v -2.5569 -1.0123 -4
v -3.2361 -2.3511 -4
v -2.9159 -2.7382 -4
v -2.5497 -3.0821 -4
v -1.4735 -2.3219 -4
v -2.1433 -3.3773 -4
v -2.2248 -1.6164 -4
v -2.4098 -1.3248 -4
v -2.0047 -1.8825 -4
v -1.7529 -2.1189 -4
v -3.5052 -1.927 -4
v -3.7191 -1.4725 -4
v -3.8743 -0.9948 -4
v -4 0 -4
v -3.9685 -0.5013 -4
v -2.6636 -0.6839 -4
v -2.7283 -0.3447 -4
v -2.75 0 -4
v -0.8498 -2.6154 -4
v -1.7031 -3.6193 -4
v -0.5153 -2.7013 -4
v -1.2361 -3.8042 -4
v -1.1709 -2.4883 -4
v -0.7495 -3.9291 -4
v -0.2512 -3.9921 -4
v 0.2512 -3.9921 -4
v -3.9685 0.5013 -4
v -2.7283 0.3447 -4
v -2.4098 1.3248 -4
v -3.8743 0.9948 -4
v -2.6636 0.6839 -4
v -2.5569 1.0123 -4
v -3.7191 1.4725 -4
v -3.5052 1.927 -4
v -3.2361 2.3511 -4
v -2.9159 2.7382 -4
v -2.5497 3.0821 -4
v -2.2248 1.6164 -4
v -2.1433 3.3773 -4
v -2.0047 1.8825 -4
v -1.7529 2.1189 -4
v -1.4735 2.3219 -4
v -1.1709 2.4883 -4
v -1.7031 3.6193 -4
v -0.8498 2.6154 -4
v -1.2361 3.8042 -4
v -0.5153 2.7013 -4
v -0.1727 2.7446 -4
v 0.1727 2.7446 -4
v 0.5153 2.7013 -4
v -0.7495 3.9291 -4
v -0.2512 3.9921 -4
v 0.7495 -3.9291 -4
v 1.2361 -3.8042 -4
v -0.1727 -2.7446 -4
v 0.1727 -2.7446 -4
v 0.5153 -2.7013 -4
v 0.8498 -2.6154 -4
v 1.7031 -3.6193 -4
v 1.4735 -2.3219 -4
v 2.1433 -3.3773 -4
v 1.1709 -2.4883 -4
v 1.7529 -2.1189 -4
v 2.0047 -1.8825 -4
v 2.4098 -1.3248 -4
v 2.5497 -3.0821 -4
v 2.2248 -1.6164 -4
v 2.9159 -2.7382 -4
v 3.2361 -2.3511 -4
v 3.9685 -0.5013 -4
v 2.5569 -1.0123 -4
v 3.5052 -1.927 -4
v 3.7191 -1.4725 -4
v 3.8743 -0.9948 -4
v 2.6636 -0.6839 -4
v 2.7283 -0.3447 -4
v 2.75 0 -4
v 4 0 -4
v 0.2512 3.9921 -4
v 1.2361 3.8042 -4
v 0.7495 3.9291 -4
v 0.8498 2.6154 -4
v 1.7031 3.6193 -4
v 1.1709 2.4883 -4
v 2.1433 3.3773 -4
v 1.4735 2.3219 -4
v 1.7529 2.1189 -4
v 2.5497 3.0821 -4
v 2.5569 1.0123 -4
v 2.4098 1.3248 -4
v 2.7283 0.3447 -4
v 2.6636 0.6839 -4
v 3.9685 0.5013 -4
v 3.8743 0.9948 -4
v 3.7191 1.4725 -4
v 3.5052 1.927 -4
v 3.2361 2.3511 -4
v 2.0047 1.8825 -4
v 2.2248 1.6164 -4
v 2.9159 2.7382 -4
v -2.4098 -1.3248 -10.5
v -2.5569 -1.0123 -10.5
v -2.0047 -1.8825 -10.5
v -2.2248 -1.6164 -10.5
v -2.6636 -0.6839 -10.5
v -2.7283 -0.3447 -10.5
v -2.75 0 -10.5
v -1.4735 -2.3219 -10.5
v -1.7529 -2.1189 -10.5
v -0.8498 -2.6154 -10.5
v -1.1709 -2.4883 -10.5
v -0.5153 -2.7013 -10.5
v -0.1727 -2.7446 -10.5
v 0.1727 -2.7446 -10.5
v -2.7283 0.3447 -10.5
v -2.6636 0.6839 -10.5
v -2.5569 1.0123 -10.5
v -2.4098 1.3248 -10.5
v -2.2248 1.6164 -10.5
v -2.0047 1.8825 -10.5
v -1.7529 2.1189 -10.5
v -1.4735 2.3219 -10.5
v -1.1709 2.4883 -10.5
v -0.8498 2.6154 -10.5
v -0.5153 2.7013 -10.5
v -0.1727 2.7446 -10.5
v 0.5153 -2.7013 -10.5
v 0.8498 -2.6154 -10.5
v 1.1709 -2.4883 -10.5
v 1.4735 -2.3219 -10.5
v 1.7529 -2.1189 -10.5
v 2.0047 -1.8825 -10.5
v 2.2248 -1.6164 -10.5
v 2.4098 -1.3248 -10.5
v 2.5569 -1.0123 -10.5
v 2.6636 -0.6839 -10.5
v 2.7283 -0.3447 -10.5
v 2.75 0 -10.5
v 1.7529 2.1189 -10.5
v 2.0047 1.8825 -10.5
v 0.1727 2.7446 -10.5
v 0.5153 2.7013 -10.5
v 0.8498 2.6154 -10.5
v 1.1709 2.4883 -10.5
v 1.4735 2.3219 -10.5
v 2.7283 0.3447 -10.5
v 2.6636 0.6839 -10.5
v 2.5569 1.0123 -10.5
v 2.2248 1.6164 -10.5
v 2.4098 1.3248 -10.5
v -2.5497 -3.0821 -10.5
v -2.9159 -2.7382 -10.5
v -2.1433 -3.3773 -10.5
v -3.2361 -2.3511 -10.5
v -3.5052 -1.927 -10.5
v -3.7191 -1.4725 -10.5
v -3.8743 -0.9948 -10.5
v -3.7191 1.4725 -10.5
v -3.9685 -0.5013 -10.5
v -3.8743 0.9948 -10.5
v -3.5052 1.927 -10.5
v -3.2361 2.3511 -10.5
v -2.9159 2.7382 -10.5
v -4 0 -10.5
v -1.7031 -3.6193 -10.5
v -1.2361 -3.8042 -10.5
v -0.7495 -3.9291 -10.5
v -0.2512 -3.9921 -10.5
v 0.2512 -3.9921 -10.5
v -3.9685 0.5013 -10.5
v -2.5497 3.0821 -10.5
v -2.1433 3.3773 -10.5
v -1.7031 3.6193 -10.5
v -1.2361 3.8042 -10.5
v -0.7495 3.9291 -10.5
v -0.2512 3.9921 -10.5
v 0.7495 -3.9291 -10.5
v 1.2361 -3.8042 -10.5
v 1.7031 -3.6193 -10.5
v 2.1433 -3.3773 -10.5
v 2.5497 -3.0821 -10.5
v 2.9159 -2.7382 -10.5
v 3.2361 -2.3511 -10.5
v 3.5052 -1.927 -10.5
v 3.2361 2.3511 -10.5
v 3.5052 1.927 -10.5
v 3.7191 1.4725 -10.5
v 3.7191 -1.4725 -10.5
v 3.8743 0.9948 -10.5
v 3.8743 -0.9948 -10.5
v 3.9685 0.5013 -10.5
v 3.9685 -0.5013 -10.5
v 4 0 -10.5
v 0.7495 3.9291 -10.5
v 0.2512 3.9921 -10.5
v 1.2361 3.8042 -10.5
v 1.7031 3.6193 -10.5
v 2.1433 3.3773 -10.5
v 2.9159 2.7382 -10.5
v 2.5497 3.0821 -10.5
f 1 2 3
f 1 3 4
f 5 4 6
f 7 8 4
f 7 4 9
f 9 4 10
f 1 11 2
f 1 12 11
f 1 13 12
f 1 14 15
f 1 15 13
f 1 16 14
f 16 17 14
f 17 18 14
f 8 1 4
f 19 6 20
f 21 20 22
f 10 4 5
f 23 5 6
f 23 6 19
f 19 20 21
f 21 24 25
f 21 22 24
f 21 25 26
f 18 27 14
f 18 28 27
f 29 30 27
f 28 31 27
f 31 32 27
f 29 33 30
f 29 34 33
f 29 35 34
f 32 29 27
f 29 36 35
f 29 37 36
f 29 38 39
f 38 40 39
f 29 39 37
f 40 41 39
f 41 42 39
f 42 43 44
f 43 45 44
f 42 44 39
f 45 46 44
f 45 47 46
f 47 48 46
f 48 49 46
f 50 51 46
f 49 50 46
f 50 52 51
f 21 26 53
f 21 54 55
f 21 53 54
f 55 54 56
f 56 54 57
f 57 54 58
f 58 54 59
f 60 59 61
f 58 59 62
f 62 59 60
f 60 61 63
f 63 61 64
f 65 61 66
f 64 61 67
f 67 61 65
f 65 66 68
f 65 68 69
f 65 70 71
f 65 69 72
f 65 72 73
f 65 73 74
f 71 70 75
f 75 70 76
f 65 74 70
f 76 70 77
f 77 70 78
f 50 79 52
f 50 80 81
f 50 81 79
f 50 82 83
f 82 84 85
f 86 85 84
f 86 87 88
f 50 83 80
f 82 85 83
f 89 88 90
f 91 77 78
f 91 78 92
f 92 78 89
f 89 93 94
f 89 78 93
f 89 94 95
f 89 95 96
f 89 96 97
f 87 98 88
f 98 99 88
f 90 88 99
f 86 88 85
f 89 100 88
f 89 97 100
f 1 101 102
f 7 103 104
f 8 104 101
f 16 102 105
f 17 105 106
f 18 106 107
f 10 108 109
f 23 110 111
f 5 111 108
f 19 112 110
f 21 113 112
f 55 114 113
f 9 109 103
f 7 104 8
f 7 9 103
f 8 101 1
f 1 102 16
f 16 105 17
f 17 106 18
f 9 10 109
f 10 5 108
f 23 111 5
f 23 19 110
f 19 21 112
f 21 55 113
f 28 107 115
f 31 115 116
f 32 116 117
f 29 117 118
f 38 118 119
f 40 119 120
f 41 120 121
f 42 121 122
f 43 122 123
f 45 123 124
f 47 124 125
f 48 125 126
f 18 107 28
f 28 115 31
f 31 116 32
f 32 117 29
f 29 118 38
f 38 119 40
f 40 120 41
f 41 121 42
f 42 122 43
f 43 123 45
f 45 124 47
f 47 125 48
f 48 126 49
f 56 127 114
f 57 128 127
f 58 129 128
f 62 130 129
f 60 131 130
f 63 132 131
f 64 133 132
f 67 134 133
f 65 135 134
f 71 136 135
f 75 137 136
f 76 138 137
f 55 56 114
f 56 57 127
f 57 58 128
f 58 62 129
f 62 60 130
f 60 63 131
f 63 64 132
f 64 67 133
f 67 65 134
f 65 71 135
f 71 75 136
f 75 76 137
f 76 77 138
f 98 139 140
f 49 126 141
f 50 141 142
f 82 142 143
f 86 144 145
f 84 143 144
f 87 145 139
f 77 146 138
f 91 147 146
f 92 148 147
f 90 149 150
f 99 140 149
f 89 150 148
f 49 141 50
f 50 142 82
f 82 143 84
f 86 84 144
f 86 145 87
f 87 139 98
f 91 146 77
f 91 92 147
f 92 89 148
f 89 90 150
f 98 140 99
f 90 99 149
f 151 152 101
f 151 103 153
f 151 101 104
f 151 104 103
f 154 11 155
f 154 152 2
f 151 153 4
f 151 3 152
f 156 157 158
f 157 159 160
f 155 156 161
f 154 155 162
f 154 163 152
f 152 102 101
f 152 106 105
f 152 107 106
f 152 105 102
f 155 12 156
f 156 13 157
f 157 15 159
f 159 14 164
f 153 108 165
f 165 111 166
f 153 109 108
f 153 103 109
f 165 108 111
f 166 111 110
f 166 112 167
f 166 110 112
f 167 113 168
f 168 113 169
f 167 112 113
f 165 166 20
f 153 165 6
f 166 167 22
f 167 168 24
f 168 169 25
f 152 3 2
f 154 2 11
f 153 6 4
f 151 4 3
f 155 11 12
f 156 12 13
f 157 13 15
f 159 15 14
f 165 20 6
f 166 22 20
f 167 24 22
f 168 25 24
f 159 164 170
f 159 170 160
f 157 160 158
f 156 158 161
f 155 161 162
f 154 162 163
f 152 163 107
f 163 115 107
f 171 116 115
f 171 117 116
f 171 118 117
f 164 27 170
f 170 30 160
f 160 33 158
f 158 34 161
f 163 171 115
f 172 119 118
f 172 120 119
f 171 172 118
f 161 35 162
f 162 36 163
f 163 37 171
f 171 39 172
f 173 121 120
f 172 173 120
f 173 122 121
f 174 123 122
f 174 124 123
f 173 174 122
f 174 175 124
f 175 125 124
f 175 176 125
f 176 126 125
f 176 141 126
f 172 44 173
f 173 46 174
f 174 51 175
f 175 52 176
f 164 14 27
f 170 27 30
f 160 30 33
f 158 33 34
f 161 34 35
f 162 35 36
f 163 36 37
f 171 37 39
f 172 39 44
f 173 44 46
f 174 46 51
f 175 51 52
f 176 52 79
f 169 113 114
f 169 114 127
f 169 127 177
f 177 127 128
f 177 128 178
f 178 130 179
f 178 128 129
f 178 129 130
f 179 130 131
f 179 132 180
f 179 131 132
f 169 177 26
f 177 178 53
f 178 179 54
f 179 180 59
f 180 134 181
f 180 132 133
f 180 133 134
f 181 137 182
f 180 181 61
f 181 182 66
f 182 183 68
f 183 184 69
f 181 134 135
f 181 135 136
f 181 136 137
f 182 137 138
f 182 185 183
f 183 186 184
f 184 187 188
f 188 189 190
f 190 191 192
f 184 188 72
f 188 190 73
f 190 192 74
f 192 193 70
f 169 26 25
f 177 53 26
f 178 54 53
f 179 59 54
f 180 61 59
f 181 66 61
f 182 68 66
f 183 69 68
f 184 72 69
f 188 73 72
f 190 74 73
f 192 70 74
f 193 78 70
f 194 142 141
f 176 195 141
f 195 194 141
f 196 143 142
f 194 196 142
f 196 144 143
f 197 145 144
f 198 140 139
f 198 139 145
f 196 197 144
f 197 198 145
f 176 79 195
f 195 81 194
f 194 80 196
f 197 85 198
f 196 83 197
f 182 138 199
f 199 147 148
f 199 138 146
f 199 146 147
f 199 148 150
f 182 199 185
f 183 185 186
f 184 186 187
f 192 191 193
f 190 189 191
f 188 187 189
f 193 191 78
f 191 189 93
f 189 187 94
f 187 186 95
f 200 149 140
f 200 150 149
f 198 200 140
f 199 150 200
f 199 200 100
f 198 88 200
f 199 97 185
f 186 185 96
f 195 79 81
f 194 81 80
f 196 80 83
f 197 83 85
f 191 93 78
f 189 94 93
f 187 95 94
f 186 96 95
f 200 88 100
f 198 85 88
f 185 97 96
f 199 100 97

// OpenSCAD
$fn = 50;

difference() {
	union() {
		translate(v = [0, 0, -10.5]) {
			cylinder(h = 10.5, r = 4.0);
		}
	}
	union() {
		translate(v = [0, 0, 0]) {
			rotate(a = [0, 0, 0]) {
				difference() {
					union() {
						translate(v = [0, 0, -4]) {
							linear_extrude(height = 4) {
								polygon(points = [[4.8468, 0.0], [2.4234000000000004, 4.197451927062417], [-2.423399999999999, 4.197451927062417], [-4.8468, 5.935618106107392e-16], [-2.423400000000002, -4.197451927062416], [2.423399999999997, -4.197451927062419]]);
							}
						}
					}
					union();
				}
			}
		}
		#translate(v = [0, 0, -100.0]) {
			cylinder(h = 200, r = 2.75);
		}
	}
}
